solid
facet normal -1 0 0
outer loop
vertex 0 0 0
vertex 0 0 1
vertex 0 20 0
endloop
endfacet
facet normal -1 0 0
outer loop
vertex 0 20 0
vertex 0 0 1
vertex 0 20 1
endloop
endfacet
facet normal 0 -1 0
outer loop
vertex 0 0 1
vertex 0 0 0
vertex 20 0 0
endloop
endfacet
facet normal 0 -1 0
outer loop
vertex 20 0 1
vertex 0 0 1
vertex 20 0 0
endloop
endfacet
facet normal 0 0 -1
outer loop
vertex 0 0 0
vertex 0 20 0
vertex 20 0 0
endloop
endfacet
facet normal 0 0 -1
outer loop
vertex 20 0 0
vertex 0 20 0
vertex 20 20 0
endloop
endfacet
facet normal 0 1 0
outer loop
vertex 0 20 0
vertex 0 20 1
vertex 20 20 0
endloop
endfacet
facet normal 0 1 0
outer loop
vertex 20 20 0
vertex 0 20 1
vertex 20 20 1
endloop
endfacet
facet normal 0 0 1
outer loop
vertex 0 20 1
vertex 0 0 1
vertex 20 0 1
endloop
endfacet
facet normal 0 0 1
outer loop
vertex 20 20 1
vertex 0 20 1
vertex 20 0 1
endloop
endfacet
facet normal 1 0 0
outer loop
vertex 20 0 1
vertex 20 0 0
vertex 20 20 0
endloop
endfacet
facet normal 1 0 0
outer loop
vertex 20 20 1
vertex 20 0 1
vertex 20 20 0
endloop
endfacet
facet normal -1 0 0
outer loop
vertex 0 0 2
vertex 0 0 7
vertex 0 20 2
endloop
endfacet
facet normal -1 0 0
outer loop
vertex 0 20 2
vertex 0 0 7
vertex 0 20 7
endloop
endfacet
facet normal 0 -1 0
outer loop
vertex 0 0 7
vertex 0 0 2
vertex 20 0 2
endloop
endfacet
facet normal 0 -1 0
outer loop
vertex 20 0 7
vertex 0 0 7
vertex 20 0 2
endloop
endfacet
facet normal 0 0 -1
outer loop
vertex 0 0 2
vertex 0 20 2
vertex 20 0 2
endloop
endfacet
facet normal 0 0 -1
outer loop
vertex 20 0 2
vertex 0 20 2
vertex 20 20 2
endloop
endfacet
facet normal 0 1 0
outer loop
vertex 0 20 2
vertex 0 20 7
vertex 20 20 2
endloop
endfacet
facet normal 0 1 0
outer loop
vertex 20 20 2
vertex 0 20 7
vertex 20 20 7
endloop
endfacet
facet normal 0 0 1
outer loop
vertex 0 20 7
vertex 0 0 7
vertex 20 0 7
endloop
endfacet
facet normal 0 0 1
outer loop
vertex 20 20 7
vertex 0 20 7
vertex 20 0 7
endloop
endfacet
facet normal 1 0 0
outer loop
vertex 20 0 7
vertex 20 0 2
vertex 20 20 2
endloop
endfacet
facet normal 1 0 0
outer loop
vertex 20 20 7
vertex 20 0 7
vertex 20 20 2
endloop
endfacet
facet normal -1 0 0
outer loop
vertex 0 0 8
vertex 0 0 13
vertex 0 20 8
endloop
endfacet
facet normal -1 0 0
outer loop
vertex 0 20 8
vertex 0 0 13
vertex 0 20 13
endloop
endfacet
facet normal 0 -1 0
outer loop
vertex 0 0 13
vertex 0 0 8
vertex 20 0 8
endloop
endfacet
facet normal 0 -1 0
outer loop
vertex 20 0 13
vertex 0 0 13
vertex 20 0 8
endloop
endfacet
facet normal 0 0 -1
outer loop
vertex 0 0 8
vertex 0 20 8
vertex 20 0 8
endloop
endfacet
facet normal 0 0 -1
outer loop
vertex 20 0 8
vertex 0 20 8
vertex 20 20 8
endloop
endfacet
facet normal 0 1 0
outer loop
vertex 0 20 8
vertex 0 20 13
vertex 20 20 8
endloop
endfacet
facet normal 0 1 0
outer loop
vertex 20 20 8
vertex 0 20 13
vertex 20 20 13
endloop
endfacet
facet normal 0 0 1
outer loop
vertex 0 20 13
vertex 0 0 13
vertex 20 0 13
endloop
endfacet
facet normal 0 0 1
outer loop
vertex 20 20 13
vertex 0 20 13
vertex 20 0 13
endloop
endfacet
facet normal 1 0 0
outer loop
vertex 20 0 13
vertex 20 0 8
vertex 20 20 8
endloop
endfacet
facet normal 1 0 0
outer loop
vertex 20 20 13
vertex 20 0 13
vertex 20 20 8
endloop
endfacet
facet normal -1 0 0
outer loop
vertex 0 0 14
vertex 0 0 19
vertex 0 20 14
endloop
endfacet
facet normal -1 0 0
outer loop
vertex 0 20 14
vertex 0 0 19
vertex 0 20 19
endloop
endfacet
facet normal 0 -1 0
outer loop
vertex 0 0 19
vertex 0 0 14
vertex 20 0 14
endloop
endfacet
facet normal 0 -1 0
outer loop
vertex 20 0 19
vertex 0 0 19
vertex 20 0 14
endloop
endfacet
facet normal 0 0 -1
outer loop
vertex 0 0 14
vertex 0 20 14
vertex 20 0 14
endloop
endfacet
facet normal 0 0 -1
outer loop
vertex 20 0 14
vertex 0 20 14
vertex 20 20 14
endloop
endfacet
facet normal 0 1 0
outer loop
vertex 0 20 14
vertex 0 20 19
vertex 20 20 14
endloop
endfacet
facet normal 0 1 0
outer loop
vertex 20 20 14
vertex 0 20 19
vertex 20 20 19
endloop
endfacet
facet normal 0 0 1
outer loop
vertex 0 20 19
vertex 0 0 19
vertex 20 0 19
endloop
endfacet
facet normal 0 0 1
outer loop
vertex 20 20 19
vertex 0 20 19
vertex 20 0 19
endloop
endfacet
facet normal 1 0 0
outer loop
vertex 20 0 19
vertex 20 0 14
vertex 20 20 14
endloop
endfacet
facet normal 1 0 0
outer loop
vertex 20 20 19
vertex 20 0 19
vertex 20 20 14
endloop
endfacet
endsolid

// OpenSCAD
RF_MODULE_BASE = [20, 20, 1];
RF_MODULE_USB = [20, 20, 5];
RF_MODULE_XXX = [20, 20, 2];

module RFduino(mod1=0, mod2=0, mod3=0)
{
	cube(RF_MODULE_BASE);

	if(mod1 != 0) 
	{
		RDmodule(mod1, [0, 0, RF_MODULE_BASE[2]+1]);
	}
	if(mod2 != 0) 
	{
		RDmodule(mod2, [0, 0, RF_MODULE_BASE[2]+1+mod1[2]+1]);
	}
	if(mod3 != 0) 
	{
		RDmodule(mod3, [0, 0, RF_MODULE_BASE[2]+1+mod1[2]+1+mod2[2]+1]);
	}
	
}

module RDmodule(mod, pos)
{
	translate(pos)
	cube(mod);
}


RFduino(RF_MODULE_USB, RF_MODULE_USB, RF_MODULE_USB);
